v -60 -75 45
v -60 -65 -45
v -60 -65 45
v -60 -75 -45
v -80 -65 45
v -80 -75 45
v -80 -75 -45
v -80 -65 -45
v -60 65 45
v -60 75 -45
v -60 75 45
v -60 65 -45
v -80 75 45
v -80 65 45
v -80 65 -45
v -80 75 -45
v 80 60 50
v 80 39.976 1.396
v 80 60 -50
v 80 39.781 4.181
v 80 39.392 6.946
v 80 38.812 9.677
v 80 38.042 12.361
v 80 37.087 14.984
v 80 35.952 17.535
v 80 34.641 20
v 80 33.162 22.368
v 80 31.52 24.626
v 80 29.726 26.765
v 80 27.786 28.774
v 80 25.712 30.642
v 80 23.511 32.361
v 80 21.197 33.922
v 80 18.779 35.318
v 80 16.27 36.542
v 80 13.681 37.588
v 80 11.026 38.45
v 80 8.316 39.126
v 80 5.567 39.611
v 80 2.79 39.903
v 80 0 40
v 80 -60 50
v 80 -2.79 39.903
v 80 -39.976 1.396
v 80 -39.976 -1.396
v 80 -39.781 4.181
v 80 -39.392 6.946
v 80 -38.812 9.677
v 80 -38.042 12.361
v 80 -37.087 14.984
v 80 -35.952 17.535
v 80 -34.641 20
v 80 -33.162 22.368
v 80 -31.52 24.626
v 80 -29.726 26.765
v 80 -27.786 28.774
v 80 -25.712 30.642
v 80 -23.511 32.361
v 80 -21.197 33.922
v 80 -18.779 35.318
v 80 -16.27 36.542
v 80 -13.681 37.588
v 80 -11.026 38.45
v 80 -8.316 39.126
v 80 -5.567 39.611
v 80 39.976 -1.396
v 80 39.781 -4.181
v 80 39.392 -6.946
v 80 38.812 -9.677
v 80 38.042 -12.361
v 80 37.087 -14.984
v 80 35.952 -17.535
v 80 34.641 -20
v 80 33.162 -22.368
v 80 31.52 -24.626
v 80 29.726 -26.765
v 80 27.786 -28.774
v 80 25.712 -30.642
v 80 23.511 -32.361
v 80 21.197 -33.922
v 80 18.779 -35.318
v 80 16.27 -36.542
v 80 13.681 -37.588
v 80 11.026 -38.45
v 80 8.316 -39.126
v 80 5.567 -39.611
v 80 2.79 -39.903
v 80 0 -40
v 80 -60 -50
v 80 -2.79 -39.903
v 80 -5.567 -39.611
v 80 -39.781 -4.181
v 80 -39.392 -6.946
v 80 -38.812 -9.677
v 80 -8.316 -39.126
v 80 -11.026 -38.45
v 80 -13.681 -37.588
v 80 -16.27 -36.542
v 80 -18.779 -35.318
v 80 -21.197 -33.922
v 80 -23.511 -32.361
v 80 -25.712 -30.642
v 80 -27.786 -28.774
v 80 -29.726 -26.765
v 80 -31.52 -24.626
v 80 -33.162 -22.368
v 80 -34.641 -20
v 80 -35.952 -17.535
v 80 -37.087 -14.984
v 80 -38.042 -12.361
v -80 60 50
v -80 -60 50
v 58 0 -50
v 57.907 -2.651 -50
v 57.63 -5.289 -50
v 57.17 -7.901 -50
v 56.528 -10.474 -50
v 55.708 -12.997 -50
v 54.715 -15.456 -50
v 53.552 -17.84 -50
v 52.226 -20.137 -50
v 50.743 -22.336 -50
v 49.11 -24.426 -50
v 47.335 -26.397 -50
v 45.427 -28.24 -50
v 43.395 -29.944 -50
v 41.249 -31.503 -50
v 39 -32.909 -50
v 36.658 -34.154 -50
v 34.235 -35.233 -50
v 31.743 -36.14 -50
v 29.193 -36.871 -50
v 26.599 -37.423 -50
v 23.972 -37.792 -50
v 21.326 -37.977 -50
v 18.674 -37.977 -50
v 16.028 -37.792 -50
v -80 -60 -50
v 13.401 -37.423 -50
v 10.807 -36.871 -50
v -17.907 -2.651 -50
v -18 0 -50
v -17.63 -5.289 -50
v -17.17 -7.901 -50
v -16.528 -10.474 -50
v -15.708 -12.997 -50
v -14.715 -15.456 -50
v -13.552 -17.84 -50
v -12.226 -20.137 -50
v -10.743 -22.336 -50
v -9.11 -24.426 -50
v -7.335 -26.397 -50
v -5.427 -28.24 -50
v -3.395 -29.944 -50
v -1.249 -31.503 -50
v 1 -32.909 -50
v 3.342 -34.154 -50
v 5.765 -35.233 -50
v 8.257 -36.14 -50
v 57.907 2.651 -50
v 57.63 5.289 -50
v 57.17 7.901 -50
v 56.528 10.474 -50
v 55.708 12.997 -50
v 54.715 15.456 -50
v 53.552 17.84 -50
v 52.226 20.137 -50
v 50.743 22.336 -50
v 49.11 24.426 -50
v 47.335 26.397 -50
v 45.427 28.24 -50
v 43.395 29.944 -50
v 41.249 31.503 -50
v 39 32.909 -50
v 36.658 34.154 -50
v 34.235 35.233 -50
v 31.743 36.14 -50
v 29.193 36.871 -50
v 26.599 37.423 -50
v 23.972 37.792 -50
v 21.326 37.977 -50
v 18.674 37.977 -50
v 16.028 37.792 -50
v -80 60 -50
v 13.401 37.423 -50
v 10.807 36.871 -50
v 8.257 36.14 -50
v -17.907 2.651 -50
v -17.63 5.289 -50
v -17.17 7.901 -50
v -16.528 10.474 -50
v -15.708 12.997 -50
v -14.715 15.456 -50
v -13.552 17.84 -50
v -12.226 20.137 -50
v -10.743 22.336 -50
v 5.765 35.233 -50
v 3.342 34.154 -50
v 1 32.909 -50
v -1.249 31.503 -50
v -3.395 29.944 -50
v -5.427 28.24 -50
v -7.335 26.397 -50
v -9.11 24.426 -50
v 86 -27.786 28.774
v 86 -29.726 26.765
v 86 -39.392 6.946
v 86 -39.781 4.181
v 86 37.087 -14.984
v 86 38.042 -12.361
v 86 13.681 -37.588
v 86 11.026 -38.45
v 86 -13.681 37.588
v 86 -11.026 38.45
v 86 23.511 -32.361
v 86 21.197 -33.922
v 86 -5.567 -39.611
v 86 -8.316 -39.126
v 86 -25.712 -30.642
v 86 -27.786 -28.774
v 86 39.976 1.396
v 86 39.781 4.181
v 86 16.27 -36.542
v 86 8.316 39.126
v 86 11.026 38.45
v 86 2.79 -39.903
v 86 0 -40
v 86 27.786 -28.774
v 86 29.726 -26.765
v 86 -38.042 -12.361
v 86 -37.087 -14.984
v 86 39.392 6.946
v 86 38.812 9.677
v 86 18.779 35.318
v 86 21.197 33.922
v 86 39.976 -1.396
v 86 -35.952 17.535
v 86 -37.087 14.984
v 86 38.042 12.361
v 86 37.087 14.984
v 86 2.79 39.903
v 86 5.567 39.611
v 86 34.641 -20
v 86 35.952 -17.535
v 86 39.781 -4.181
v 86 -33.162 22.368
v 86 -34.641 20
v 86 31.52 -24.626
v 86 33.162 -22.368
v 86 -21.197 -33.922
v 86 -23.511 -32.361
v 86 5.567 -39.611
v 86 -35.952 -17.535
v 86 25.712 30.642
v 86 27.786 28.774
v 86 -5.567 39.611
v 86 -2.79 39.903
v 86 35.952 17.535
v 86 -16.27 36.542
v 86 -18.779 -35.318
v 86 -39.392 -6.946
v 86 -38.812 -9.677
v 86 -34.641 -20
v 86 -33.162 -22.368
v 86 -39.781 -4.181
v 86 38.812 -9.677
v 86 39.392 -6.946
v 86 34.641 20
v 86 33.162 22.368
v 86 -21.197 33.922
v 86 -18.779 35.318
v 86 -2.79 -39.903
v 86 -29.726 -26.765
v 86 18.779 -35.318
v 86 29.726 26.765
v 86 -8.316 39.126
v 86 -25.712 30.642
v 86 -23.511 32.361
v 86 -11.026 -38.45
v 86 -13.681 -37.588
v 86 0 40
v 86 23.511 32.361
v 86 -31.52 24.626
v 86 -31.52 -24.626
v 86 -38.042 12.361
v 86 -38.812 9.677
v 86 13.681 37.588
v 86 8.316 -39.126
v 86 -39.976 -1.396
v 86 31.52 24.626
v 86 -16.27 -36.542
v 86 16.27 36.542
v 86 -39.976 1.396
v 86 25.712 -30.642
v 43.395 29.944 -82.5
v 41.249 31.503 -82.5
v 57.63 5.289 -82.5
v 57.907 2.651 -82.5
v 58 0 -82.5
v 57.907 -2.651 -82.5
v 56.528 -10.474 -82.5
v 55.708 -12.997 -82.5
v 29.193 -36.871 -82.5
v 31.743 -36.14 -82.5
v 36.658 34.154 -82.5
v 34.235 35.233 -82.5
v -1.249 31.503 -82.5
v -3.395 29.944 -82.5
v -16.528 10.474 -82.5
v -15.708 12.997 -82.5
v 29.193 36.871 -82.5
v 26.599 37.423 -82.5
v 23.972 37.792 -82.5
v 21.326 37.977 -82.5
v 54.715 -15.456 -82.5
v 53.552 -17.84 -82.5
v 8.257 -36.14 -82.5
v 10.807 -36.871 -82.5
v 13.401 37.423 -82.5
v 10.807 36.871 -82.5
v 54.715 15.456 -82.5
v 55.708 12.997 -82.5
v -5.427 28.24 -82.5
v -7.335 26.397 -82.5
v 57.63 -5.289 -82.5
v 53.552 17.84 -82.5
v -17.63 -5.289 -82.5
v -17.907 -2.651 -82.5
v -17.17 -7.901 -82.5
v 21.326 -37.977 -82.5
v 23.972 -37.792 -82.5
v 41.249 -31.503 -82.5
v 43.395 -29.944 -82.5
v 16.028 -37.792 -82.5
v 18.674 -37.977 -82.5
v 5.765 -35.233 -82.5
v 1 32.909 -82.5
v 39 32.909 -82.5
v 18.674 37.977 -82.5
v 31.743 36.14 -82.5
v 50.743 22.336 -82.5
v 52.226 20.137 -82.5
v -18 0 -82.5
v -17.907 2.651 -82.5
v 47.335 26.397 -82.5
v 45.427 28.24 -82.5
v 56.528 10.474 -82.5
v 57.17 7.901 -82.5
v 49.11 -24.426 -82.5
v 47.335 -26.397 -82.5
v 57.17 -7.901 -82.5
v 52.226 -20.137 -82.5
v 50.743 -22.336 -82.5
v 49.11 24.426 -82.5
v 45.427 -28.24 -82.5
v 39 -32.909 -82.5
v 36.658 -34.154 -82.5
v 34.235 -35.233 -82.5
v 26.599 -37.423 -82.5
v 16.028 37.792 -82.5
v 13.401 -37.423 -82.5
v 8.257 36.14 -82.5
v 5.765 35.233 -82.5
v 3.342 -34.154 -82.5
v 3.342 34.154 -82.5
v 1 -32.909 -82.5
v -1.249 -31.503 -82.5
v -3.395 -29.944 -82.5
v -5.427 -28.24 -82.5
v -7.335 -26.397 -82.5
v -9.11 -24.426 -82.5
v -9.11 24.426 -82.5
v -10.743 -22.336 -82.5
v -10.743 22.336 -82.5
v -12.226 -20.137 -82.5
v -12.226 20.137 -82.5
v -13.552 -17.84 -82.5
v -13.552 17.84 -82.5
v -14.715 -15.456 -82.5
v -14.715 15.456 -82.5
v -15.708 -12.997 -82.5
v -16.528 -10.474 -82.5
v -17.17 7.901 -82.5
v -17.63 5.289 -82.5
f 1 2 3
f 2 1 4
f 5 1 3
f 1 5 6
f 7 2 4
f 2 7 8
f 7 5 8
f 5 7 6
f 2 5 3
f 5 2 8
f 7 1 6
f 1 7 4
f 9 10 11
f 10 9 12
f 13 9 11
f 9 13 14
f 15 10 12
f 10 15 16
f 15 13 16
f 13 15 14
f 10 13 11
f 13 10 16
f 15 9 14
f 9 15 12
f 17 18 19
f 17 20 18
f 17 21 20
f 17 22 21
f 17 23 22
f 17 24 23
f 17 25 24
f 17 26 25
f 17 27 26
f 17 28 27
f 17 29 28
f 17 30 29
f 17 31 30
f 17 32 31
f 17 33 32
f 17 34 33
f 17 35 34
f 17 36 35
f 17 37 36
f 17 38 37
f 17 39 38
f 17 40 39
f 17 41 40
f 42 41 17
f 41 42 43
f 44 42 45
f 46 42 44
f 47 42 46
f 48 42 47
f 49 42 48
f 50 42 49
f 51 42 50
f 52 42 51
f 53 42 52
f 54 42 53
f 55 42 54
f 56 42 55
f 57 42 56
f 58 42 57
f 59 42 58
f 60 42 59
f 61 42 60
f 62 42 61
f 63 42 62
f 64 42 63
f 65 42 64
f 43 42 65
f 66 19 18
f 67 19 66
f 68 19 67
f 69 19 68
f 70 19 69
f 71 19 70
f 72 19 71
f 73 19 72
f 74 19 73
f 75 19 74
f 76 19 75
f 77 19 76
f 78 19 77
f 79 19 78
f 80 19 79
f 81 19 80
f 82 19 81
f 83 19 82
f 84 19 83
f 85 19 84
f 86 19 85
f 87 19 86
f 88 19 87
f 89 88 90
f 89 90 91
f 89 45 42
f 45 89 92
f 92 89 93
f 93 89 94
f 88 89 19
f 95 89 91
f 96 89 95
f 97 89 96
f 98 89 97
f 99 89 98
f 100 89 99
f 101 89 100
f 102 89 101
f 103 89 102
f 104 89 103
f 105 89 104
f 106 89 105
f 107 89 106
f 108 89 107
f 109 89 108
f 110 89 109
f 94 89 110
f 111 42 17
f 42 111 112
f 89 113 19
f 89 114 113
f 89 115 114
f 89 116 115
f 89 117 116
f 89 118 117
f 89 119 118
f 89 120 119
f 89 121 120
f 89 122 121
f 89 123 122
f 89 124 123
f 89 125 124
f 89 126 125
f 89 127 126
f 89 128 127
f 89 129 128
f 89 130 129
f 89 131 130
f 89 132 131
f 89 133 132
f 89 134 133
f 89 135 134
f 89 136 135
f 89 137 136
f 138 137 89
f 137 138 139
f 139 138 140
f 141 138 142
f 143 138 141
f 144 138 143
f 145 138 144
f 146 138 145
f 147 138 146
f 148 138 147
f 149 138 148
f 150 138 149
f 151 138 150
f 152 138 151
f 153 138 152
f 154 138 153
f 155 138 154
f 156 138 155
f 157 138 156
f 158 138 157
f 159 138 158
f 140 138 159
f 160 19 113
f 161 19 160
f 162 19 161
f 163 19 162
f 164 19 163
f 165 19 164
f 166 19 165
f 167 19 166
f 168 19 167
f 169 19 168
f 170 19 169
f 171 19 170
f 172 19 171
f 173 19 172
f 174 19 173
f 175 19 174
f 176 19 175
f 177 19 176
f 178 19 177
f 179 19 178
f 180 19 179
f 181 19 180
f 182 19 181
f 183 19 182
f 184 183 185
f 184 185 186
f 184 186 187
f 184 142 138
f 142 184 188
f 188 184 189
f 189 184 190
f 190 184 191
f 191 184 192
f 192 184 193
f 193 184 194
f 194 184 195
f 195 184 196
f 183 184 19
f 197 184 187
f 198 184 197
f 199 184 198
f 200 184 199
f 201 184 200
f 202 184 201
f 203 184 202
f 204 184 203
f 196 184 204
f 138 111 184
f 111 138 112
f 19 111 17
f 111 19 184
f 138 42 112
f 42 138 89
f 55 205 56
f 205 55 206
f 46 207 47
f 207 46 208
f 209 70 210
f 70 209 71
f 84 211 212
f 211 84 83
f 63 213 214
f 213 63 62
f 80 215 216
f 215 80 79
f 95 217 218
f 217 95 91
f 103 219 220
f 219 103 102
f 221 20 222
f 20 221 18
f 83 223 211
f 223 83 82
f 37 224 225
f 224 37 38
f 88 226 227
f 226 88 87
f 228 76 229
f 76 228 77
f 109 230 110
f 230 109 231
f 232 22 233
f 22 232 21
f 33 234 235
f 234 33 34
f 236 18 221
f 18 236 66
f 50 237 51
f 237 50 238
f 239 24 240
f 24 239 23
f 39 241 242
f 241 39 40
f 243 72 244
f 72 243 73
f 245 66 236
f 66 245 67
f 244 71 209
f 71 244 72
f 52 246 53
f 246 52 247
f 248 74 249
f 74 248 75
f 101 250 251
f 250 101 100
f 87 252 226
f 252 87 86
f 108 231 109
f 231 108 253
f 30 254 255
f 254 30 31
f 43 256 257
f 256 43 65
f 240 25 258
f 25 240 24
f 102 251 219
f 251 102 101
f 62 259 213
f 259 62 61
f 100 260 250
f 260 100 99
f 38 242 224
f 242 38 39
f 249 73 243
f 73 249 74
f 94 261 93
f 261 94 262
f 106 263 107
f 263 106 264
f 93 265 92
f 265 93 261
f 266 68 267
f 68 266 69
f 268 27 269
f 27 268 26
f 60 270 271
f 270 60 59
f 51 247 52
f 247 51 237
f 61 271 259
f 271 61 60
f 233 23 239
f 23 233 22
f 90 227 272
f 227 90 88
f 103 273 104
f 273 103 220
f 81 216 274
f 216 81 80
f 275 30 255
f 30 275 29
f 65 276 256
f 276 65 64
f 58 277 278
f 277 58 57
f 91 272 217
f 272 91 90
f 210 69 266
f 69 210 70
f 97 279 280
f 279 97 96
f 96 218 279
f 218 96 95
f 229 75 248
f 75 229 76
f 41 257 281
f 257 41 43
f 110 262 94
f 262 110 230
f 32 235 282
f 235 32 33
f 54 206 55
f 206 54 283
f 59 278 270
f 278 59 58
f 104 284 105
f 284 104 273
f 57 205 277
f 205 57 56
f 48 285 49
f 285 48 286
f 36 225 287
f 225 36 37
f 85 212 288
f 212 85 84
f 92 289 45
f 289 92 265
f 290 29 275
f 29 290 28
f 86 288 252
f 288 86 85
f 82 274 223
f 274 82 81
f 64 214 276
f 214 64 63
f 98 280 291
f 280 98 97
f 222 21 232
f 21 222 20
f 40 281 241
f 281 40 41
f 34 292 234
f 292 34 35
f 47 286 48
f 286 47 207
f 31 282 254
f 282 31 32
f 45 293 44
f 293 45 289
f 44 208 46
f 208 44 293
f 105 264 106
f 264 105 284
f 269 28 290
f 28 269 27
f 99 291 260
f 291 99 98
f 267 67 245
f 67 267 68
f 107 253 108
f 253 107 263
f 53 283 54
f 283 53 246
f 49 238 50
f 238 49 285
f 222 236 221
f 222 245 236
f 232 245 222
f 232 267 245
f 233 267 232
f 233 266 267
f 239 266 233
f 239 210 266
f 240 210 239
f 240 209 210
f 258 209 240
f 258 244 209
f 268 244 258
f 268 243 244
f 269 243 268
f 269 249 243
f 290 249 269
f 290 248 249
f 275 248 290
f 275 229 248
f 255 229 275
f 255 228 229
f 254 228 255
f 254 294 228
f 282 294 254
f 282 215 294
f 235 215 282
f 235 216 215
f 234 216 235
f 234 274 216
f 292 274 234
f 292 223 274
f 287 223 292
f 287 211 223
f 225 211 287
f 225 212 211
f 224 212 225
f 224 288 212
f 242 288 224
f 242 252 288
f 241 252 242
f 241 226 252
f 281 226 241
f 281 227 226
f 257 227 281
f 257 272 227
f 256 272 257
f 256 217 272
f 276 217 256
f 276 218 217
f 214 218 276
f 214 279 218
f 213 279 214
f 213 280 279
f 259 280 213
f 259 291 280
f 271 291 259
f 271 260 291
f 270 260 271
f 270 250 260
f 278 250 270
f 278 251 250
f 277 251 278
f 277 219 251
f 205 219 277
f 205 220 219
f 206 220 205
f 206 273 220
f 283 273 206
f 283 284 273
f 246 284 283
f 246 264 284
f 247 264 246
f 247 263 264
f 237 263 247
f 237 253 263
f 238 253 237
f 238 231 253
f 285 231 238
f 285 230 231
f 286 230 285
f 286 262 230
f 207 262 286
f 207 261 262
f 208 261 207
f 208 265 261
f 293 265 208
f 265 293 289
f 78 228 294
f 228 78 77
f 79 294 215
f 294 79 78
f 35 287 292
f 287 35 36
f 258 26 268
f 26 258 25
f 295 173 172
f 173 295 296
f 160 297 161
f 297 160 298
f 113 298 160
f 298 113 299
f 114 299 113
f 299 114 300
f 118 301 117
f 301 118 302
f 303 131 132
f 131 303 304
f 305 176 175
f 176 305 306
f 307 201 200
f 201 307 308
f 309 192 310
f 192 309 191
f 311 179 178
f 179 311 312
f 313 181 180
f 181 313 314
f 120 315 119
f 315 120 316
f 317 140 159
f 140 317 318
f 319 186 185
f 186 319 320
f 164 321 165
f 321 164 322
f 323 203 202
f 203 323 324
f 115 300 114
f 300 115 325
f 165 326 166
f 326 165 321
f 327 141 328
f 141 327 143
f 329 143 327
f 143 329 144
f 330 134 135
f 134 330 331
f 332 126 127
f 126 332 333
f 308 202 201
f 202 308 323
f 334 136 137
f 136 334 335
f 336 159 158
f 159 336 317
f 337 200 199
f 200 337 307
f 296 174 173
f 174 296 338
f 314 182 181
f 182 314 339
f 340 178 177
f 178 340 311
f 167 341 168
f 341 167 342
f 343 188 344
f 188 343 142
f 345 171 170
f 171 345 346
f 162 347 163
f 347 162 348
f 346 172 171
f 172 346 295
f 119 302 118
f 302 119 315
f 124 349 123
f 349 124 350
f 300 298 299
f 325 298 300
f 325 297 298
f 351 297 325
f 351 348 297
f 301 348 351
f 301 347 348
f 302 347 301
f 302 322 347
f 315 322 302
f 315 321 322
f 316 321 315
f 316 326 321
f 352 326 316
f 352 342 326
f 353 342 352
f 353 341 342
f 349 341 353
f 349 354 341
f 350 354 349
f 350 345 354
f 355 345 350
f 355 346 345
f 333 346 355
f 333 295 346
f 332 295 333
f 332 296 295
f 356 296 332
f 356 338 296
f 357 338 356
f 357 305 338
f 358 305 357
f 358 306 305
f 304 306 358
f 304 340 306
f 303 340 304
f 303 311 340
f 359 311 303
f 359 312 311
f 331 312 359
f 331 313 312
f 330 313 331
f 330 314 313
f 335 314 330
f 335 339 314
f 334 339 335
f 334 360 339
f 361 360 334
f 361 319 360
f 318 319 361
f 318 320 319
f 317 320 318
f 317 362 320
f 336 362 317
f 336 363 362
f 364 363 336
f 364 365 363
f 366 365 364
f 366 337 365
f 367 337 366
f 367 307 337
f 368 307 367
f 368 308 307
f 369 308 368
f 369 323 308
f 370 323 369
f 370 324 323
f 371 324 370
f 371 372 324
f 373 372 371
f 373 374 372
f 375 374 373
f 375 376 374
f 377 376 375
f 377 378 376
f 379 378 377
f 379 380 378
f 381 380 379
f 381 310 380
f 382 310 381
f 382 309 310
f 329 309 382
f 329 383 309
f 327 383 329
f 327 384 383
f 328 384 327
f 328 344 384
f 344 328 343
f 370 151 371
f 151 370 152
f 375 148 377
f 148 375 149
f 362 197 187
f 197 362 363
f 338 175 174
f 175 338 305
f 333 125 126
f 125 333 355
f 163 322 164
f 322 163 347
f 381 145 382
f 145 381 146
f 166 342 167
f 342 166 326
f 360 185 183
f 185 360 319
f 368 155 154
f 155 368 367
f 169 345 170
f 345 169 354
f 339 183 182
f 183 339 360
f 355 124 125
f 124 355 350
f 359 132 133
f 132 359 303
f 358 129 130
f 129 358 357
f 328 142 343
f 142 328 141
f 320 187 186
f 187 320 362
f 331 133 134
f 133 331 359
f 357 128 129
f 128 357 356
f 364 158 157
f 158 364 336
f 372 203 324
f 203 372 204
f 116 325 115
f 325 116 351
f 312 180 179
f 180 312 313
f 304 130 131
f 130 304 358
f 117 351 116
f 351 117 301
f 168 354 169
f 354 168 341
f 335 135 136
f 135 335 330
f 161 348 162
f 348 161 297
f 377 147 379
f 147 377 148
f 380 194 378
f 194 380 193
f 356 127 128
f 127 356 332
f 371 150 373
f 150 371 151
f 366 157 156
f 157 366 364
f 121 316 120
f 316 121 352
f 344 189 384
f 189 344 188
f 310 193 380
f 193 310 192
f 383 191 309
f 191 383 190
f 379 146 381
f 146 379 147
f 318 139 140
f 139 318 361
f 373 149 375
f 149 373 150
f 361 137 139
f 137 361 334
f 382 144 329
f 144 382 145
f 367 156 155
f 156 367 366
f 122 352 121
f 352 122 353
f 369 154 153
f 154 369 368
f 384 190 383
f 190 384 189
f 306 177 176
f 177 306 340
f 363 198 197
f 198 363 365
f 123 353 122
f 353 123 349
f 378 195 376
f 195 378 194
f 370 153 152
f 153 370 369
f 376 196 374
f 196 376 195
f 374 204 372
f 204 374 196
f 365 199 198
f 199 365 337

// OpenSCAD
// ============================================================================
// DiveGuard heavy-class ROV - rov-platform/HLD.md
// 08_Sensor_and_Camera_Skid_Front - HD camera + scanning sonar
//
// Lifted from the design dialogue originally pasted into BACKLOG.md on main
// (2026-08 batch), preserved verbatim as authored there.
//
// Update 2026-08-08: OpenSCAD IS available in this sandbox (installed via apt
// for this verification pass - previously assumed unavailable; that
// assumption was wrong, corrected repo-wide, see BACKLOG.md). This file has
// been rendered (`openscad -o out.stl this.scad`) and confirmed a valid
// 2-manifold solid ("Simple: yes" in the render log) - real geometric
// validity, not just a paren-balance check. STEP export and an independent
// engineer re-check of dimension/tolerance claims before any
// part is fabricated from it.
// ============================================================================

// ==========================================
// DIVEGUARD: Sensor and Camera Skid Front (08)
// Material: Anodized Aluminum / Polycarbonate
// Component: HD Camera Enclosure & Ping360 Sonar[cite: 4]
// ==========================================

$fn = 90;

module front_sensor_skid() {
    // 1. Центральный защитный кожух камеры и электроники (характерный яркий корпус)
    color("DarkOrange")
    translate([0, 0, 0])
        cube([160, 120, 100], center = true);

    // 2. Фронтальный оптический иллюминатор (акрил высокой прозрачности)
    color("Cyan", 0.6)
    translate([81, 0, 0])
        rotate([0, 90, 0])
        cylinder(h = 10, r = 40, center = true);

    // 3. Сканирующий круговой гидролокатор (например, Ping360 под модулем)[cite: 4]
    color("Black")
    translate([20, 0, -65])
        cylinder(h = 35, r = 38, center = true);

    // 4. Боковые кронштейны регулировки наклона и крепления к силовой раме (Файл 01)
    color("Silver") {
        translate([-70, -70, 0]) cube([20, 10, 90], center = true);
        translate([-70, 70, 0]) cube([20, 10, 90], center = true);
    }
}

front_sensor_skid();
